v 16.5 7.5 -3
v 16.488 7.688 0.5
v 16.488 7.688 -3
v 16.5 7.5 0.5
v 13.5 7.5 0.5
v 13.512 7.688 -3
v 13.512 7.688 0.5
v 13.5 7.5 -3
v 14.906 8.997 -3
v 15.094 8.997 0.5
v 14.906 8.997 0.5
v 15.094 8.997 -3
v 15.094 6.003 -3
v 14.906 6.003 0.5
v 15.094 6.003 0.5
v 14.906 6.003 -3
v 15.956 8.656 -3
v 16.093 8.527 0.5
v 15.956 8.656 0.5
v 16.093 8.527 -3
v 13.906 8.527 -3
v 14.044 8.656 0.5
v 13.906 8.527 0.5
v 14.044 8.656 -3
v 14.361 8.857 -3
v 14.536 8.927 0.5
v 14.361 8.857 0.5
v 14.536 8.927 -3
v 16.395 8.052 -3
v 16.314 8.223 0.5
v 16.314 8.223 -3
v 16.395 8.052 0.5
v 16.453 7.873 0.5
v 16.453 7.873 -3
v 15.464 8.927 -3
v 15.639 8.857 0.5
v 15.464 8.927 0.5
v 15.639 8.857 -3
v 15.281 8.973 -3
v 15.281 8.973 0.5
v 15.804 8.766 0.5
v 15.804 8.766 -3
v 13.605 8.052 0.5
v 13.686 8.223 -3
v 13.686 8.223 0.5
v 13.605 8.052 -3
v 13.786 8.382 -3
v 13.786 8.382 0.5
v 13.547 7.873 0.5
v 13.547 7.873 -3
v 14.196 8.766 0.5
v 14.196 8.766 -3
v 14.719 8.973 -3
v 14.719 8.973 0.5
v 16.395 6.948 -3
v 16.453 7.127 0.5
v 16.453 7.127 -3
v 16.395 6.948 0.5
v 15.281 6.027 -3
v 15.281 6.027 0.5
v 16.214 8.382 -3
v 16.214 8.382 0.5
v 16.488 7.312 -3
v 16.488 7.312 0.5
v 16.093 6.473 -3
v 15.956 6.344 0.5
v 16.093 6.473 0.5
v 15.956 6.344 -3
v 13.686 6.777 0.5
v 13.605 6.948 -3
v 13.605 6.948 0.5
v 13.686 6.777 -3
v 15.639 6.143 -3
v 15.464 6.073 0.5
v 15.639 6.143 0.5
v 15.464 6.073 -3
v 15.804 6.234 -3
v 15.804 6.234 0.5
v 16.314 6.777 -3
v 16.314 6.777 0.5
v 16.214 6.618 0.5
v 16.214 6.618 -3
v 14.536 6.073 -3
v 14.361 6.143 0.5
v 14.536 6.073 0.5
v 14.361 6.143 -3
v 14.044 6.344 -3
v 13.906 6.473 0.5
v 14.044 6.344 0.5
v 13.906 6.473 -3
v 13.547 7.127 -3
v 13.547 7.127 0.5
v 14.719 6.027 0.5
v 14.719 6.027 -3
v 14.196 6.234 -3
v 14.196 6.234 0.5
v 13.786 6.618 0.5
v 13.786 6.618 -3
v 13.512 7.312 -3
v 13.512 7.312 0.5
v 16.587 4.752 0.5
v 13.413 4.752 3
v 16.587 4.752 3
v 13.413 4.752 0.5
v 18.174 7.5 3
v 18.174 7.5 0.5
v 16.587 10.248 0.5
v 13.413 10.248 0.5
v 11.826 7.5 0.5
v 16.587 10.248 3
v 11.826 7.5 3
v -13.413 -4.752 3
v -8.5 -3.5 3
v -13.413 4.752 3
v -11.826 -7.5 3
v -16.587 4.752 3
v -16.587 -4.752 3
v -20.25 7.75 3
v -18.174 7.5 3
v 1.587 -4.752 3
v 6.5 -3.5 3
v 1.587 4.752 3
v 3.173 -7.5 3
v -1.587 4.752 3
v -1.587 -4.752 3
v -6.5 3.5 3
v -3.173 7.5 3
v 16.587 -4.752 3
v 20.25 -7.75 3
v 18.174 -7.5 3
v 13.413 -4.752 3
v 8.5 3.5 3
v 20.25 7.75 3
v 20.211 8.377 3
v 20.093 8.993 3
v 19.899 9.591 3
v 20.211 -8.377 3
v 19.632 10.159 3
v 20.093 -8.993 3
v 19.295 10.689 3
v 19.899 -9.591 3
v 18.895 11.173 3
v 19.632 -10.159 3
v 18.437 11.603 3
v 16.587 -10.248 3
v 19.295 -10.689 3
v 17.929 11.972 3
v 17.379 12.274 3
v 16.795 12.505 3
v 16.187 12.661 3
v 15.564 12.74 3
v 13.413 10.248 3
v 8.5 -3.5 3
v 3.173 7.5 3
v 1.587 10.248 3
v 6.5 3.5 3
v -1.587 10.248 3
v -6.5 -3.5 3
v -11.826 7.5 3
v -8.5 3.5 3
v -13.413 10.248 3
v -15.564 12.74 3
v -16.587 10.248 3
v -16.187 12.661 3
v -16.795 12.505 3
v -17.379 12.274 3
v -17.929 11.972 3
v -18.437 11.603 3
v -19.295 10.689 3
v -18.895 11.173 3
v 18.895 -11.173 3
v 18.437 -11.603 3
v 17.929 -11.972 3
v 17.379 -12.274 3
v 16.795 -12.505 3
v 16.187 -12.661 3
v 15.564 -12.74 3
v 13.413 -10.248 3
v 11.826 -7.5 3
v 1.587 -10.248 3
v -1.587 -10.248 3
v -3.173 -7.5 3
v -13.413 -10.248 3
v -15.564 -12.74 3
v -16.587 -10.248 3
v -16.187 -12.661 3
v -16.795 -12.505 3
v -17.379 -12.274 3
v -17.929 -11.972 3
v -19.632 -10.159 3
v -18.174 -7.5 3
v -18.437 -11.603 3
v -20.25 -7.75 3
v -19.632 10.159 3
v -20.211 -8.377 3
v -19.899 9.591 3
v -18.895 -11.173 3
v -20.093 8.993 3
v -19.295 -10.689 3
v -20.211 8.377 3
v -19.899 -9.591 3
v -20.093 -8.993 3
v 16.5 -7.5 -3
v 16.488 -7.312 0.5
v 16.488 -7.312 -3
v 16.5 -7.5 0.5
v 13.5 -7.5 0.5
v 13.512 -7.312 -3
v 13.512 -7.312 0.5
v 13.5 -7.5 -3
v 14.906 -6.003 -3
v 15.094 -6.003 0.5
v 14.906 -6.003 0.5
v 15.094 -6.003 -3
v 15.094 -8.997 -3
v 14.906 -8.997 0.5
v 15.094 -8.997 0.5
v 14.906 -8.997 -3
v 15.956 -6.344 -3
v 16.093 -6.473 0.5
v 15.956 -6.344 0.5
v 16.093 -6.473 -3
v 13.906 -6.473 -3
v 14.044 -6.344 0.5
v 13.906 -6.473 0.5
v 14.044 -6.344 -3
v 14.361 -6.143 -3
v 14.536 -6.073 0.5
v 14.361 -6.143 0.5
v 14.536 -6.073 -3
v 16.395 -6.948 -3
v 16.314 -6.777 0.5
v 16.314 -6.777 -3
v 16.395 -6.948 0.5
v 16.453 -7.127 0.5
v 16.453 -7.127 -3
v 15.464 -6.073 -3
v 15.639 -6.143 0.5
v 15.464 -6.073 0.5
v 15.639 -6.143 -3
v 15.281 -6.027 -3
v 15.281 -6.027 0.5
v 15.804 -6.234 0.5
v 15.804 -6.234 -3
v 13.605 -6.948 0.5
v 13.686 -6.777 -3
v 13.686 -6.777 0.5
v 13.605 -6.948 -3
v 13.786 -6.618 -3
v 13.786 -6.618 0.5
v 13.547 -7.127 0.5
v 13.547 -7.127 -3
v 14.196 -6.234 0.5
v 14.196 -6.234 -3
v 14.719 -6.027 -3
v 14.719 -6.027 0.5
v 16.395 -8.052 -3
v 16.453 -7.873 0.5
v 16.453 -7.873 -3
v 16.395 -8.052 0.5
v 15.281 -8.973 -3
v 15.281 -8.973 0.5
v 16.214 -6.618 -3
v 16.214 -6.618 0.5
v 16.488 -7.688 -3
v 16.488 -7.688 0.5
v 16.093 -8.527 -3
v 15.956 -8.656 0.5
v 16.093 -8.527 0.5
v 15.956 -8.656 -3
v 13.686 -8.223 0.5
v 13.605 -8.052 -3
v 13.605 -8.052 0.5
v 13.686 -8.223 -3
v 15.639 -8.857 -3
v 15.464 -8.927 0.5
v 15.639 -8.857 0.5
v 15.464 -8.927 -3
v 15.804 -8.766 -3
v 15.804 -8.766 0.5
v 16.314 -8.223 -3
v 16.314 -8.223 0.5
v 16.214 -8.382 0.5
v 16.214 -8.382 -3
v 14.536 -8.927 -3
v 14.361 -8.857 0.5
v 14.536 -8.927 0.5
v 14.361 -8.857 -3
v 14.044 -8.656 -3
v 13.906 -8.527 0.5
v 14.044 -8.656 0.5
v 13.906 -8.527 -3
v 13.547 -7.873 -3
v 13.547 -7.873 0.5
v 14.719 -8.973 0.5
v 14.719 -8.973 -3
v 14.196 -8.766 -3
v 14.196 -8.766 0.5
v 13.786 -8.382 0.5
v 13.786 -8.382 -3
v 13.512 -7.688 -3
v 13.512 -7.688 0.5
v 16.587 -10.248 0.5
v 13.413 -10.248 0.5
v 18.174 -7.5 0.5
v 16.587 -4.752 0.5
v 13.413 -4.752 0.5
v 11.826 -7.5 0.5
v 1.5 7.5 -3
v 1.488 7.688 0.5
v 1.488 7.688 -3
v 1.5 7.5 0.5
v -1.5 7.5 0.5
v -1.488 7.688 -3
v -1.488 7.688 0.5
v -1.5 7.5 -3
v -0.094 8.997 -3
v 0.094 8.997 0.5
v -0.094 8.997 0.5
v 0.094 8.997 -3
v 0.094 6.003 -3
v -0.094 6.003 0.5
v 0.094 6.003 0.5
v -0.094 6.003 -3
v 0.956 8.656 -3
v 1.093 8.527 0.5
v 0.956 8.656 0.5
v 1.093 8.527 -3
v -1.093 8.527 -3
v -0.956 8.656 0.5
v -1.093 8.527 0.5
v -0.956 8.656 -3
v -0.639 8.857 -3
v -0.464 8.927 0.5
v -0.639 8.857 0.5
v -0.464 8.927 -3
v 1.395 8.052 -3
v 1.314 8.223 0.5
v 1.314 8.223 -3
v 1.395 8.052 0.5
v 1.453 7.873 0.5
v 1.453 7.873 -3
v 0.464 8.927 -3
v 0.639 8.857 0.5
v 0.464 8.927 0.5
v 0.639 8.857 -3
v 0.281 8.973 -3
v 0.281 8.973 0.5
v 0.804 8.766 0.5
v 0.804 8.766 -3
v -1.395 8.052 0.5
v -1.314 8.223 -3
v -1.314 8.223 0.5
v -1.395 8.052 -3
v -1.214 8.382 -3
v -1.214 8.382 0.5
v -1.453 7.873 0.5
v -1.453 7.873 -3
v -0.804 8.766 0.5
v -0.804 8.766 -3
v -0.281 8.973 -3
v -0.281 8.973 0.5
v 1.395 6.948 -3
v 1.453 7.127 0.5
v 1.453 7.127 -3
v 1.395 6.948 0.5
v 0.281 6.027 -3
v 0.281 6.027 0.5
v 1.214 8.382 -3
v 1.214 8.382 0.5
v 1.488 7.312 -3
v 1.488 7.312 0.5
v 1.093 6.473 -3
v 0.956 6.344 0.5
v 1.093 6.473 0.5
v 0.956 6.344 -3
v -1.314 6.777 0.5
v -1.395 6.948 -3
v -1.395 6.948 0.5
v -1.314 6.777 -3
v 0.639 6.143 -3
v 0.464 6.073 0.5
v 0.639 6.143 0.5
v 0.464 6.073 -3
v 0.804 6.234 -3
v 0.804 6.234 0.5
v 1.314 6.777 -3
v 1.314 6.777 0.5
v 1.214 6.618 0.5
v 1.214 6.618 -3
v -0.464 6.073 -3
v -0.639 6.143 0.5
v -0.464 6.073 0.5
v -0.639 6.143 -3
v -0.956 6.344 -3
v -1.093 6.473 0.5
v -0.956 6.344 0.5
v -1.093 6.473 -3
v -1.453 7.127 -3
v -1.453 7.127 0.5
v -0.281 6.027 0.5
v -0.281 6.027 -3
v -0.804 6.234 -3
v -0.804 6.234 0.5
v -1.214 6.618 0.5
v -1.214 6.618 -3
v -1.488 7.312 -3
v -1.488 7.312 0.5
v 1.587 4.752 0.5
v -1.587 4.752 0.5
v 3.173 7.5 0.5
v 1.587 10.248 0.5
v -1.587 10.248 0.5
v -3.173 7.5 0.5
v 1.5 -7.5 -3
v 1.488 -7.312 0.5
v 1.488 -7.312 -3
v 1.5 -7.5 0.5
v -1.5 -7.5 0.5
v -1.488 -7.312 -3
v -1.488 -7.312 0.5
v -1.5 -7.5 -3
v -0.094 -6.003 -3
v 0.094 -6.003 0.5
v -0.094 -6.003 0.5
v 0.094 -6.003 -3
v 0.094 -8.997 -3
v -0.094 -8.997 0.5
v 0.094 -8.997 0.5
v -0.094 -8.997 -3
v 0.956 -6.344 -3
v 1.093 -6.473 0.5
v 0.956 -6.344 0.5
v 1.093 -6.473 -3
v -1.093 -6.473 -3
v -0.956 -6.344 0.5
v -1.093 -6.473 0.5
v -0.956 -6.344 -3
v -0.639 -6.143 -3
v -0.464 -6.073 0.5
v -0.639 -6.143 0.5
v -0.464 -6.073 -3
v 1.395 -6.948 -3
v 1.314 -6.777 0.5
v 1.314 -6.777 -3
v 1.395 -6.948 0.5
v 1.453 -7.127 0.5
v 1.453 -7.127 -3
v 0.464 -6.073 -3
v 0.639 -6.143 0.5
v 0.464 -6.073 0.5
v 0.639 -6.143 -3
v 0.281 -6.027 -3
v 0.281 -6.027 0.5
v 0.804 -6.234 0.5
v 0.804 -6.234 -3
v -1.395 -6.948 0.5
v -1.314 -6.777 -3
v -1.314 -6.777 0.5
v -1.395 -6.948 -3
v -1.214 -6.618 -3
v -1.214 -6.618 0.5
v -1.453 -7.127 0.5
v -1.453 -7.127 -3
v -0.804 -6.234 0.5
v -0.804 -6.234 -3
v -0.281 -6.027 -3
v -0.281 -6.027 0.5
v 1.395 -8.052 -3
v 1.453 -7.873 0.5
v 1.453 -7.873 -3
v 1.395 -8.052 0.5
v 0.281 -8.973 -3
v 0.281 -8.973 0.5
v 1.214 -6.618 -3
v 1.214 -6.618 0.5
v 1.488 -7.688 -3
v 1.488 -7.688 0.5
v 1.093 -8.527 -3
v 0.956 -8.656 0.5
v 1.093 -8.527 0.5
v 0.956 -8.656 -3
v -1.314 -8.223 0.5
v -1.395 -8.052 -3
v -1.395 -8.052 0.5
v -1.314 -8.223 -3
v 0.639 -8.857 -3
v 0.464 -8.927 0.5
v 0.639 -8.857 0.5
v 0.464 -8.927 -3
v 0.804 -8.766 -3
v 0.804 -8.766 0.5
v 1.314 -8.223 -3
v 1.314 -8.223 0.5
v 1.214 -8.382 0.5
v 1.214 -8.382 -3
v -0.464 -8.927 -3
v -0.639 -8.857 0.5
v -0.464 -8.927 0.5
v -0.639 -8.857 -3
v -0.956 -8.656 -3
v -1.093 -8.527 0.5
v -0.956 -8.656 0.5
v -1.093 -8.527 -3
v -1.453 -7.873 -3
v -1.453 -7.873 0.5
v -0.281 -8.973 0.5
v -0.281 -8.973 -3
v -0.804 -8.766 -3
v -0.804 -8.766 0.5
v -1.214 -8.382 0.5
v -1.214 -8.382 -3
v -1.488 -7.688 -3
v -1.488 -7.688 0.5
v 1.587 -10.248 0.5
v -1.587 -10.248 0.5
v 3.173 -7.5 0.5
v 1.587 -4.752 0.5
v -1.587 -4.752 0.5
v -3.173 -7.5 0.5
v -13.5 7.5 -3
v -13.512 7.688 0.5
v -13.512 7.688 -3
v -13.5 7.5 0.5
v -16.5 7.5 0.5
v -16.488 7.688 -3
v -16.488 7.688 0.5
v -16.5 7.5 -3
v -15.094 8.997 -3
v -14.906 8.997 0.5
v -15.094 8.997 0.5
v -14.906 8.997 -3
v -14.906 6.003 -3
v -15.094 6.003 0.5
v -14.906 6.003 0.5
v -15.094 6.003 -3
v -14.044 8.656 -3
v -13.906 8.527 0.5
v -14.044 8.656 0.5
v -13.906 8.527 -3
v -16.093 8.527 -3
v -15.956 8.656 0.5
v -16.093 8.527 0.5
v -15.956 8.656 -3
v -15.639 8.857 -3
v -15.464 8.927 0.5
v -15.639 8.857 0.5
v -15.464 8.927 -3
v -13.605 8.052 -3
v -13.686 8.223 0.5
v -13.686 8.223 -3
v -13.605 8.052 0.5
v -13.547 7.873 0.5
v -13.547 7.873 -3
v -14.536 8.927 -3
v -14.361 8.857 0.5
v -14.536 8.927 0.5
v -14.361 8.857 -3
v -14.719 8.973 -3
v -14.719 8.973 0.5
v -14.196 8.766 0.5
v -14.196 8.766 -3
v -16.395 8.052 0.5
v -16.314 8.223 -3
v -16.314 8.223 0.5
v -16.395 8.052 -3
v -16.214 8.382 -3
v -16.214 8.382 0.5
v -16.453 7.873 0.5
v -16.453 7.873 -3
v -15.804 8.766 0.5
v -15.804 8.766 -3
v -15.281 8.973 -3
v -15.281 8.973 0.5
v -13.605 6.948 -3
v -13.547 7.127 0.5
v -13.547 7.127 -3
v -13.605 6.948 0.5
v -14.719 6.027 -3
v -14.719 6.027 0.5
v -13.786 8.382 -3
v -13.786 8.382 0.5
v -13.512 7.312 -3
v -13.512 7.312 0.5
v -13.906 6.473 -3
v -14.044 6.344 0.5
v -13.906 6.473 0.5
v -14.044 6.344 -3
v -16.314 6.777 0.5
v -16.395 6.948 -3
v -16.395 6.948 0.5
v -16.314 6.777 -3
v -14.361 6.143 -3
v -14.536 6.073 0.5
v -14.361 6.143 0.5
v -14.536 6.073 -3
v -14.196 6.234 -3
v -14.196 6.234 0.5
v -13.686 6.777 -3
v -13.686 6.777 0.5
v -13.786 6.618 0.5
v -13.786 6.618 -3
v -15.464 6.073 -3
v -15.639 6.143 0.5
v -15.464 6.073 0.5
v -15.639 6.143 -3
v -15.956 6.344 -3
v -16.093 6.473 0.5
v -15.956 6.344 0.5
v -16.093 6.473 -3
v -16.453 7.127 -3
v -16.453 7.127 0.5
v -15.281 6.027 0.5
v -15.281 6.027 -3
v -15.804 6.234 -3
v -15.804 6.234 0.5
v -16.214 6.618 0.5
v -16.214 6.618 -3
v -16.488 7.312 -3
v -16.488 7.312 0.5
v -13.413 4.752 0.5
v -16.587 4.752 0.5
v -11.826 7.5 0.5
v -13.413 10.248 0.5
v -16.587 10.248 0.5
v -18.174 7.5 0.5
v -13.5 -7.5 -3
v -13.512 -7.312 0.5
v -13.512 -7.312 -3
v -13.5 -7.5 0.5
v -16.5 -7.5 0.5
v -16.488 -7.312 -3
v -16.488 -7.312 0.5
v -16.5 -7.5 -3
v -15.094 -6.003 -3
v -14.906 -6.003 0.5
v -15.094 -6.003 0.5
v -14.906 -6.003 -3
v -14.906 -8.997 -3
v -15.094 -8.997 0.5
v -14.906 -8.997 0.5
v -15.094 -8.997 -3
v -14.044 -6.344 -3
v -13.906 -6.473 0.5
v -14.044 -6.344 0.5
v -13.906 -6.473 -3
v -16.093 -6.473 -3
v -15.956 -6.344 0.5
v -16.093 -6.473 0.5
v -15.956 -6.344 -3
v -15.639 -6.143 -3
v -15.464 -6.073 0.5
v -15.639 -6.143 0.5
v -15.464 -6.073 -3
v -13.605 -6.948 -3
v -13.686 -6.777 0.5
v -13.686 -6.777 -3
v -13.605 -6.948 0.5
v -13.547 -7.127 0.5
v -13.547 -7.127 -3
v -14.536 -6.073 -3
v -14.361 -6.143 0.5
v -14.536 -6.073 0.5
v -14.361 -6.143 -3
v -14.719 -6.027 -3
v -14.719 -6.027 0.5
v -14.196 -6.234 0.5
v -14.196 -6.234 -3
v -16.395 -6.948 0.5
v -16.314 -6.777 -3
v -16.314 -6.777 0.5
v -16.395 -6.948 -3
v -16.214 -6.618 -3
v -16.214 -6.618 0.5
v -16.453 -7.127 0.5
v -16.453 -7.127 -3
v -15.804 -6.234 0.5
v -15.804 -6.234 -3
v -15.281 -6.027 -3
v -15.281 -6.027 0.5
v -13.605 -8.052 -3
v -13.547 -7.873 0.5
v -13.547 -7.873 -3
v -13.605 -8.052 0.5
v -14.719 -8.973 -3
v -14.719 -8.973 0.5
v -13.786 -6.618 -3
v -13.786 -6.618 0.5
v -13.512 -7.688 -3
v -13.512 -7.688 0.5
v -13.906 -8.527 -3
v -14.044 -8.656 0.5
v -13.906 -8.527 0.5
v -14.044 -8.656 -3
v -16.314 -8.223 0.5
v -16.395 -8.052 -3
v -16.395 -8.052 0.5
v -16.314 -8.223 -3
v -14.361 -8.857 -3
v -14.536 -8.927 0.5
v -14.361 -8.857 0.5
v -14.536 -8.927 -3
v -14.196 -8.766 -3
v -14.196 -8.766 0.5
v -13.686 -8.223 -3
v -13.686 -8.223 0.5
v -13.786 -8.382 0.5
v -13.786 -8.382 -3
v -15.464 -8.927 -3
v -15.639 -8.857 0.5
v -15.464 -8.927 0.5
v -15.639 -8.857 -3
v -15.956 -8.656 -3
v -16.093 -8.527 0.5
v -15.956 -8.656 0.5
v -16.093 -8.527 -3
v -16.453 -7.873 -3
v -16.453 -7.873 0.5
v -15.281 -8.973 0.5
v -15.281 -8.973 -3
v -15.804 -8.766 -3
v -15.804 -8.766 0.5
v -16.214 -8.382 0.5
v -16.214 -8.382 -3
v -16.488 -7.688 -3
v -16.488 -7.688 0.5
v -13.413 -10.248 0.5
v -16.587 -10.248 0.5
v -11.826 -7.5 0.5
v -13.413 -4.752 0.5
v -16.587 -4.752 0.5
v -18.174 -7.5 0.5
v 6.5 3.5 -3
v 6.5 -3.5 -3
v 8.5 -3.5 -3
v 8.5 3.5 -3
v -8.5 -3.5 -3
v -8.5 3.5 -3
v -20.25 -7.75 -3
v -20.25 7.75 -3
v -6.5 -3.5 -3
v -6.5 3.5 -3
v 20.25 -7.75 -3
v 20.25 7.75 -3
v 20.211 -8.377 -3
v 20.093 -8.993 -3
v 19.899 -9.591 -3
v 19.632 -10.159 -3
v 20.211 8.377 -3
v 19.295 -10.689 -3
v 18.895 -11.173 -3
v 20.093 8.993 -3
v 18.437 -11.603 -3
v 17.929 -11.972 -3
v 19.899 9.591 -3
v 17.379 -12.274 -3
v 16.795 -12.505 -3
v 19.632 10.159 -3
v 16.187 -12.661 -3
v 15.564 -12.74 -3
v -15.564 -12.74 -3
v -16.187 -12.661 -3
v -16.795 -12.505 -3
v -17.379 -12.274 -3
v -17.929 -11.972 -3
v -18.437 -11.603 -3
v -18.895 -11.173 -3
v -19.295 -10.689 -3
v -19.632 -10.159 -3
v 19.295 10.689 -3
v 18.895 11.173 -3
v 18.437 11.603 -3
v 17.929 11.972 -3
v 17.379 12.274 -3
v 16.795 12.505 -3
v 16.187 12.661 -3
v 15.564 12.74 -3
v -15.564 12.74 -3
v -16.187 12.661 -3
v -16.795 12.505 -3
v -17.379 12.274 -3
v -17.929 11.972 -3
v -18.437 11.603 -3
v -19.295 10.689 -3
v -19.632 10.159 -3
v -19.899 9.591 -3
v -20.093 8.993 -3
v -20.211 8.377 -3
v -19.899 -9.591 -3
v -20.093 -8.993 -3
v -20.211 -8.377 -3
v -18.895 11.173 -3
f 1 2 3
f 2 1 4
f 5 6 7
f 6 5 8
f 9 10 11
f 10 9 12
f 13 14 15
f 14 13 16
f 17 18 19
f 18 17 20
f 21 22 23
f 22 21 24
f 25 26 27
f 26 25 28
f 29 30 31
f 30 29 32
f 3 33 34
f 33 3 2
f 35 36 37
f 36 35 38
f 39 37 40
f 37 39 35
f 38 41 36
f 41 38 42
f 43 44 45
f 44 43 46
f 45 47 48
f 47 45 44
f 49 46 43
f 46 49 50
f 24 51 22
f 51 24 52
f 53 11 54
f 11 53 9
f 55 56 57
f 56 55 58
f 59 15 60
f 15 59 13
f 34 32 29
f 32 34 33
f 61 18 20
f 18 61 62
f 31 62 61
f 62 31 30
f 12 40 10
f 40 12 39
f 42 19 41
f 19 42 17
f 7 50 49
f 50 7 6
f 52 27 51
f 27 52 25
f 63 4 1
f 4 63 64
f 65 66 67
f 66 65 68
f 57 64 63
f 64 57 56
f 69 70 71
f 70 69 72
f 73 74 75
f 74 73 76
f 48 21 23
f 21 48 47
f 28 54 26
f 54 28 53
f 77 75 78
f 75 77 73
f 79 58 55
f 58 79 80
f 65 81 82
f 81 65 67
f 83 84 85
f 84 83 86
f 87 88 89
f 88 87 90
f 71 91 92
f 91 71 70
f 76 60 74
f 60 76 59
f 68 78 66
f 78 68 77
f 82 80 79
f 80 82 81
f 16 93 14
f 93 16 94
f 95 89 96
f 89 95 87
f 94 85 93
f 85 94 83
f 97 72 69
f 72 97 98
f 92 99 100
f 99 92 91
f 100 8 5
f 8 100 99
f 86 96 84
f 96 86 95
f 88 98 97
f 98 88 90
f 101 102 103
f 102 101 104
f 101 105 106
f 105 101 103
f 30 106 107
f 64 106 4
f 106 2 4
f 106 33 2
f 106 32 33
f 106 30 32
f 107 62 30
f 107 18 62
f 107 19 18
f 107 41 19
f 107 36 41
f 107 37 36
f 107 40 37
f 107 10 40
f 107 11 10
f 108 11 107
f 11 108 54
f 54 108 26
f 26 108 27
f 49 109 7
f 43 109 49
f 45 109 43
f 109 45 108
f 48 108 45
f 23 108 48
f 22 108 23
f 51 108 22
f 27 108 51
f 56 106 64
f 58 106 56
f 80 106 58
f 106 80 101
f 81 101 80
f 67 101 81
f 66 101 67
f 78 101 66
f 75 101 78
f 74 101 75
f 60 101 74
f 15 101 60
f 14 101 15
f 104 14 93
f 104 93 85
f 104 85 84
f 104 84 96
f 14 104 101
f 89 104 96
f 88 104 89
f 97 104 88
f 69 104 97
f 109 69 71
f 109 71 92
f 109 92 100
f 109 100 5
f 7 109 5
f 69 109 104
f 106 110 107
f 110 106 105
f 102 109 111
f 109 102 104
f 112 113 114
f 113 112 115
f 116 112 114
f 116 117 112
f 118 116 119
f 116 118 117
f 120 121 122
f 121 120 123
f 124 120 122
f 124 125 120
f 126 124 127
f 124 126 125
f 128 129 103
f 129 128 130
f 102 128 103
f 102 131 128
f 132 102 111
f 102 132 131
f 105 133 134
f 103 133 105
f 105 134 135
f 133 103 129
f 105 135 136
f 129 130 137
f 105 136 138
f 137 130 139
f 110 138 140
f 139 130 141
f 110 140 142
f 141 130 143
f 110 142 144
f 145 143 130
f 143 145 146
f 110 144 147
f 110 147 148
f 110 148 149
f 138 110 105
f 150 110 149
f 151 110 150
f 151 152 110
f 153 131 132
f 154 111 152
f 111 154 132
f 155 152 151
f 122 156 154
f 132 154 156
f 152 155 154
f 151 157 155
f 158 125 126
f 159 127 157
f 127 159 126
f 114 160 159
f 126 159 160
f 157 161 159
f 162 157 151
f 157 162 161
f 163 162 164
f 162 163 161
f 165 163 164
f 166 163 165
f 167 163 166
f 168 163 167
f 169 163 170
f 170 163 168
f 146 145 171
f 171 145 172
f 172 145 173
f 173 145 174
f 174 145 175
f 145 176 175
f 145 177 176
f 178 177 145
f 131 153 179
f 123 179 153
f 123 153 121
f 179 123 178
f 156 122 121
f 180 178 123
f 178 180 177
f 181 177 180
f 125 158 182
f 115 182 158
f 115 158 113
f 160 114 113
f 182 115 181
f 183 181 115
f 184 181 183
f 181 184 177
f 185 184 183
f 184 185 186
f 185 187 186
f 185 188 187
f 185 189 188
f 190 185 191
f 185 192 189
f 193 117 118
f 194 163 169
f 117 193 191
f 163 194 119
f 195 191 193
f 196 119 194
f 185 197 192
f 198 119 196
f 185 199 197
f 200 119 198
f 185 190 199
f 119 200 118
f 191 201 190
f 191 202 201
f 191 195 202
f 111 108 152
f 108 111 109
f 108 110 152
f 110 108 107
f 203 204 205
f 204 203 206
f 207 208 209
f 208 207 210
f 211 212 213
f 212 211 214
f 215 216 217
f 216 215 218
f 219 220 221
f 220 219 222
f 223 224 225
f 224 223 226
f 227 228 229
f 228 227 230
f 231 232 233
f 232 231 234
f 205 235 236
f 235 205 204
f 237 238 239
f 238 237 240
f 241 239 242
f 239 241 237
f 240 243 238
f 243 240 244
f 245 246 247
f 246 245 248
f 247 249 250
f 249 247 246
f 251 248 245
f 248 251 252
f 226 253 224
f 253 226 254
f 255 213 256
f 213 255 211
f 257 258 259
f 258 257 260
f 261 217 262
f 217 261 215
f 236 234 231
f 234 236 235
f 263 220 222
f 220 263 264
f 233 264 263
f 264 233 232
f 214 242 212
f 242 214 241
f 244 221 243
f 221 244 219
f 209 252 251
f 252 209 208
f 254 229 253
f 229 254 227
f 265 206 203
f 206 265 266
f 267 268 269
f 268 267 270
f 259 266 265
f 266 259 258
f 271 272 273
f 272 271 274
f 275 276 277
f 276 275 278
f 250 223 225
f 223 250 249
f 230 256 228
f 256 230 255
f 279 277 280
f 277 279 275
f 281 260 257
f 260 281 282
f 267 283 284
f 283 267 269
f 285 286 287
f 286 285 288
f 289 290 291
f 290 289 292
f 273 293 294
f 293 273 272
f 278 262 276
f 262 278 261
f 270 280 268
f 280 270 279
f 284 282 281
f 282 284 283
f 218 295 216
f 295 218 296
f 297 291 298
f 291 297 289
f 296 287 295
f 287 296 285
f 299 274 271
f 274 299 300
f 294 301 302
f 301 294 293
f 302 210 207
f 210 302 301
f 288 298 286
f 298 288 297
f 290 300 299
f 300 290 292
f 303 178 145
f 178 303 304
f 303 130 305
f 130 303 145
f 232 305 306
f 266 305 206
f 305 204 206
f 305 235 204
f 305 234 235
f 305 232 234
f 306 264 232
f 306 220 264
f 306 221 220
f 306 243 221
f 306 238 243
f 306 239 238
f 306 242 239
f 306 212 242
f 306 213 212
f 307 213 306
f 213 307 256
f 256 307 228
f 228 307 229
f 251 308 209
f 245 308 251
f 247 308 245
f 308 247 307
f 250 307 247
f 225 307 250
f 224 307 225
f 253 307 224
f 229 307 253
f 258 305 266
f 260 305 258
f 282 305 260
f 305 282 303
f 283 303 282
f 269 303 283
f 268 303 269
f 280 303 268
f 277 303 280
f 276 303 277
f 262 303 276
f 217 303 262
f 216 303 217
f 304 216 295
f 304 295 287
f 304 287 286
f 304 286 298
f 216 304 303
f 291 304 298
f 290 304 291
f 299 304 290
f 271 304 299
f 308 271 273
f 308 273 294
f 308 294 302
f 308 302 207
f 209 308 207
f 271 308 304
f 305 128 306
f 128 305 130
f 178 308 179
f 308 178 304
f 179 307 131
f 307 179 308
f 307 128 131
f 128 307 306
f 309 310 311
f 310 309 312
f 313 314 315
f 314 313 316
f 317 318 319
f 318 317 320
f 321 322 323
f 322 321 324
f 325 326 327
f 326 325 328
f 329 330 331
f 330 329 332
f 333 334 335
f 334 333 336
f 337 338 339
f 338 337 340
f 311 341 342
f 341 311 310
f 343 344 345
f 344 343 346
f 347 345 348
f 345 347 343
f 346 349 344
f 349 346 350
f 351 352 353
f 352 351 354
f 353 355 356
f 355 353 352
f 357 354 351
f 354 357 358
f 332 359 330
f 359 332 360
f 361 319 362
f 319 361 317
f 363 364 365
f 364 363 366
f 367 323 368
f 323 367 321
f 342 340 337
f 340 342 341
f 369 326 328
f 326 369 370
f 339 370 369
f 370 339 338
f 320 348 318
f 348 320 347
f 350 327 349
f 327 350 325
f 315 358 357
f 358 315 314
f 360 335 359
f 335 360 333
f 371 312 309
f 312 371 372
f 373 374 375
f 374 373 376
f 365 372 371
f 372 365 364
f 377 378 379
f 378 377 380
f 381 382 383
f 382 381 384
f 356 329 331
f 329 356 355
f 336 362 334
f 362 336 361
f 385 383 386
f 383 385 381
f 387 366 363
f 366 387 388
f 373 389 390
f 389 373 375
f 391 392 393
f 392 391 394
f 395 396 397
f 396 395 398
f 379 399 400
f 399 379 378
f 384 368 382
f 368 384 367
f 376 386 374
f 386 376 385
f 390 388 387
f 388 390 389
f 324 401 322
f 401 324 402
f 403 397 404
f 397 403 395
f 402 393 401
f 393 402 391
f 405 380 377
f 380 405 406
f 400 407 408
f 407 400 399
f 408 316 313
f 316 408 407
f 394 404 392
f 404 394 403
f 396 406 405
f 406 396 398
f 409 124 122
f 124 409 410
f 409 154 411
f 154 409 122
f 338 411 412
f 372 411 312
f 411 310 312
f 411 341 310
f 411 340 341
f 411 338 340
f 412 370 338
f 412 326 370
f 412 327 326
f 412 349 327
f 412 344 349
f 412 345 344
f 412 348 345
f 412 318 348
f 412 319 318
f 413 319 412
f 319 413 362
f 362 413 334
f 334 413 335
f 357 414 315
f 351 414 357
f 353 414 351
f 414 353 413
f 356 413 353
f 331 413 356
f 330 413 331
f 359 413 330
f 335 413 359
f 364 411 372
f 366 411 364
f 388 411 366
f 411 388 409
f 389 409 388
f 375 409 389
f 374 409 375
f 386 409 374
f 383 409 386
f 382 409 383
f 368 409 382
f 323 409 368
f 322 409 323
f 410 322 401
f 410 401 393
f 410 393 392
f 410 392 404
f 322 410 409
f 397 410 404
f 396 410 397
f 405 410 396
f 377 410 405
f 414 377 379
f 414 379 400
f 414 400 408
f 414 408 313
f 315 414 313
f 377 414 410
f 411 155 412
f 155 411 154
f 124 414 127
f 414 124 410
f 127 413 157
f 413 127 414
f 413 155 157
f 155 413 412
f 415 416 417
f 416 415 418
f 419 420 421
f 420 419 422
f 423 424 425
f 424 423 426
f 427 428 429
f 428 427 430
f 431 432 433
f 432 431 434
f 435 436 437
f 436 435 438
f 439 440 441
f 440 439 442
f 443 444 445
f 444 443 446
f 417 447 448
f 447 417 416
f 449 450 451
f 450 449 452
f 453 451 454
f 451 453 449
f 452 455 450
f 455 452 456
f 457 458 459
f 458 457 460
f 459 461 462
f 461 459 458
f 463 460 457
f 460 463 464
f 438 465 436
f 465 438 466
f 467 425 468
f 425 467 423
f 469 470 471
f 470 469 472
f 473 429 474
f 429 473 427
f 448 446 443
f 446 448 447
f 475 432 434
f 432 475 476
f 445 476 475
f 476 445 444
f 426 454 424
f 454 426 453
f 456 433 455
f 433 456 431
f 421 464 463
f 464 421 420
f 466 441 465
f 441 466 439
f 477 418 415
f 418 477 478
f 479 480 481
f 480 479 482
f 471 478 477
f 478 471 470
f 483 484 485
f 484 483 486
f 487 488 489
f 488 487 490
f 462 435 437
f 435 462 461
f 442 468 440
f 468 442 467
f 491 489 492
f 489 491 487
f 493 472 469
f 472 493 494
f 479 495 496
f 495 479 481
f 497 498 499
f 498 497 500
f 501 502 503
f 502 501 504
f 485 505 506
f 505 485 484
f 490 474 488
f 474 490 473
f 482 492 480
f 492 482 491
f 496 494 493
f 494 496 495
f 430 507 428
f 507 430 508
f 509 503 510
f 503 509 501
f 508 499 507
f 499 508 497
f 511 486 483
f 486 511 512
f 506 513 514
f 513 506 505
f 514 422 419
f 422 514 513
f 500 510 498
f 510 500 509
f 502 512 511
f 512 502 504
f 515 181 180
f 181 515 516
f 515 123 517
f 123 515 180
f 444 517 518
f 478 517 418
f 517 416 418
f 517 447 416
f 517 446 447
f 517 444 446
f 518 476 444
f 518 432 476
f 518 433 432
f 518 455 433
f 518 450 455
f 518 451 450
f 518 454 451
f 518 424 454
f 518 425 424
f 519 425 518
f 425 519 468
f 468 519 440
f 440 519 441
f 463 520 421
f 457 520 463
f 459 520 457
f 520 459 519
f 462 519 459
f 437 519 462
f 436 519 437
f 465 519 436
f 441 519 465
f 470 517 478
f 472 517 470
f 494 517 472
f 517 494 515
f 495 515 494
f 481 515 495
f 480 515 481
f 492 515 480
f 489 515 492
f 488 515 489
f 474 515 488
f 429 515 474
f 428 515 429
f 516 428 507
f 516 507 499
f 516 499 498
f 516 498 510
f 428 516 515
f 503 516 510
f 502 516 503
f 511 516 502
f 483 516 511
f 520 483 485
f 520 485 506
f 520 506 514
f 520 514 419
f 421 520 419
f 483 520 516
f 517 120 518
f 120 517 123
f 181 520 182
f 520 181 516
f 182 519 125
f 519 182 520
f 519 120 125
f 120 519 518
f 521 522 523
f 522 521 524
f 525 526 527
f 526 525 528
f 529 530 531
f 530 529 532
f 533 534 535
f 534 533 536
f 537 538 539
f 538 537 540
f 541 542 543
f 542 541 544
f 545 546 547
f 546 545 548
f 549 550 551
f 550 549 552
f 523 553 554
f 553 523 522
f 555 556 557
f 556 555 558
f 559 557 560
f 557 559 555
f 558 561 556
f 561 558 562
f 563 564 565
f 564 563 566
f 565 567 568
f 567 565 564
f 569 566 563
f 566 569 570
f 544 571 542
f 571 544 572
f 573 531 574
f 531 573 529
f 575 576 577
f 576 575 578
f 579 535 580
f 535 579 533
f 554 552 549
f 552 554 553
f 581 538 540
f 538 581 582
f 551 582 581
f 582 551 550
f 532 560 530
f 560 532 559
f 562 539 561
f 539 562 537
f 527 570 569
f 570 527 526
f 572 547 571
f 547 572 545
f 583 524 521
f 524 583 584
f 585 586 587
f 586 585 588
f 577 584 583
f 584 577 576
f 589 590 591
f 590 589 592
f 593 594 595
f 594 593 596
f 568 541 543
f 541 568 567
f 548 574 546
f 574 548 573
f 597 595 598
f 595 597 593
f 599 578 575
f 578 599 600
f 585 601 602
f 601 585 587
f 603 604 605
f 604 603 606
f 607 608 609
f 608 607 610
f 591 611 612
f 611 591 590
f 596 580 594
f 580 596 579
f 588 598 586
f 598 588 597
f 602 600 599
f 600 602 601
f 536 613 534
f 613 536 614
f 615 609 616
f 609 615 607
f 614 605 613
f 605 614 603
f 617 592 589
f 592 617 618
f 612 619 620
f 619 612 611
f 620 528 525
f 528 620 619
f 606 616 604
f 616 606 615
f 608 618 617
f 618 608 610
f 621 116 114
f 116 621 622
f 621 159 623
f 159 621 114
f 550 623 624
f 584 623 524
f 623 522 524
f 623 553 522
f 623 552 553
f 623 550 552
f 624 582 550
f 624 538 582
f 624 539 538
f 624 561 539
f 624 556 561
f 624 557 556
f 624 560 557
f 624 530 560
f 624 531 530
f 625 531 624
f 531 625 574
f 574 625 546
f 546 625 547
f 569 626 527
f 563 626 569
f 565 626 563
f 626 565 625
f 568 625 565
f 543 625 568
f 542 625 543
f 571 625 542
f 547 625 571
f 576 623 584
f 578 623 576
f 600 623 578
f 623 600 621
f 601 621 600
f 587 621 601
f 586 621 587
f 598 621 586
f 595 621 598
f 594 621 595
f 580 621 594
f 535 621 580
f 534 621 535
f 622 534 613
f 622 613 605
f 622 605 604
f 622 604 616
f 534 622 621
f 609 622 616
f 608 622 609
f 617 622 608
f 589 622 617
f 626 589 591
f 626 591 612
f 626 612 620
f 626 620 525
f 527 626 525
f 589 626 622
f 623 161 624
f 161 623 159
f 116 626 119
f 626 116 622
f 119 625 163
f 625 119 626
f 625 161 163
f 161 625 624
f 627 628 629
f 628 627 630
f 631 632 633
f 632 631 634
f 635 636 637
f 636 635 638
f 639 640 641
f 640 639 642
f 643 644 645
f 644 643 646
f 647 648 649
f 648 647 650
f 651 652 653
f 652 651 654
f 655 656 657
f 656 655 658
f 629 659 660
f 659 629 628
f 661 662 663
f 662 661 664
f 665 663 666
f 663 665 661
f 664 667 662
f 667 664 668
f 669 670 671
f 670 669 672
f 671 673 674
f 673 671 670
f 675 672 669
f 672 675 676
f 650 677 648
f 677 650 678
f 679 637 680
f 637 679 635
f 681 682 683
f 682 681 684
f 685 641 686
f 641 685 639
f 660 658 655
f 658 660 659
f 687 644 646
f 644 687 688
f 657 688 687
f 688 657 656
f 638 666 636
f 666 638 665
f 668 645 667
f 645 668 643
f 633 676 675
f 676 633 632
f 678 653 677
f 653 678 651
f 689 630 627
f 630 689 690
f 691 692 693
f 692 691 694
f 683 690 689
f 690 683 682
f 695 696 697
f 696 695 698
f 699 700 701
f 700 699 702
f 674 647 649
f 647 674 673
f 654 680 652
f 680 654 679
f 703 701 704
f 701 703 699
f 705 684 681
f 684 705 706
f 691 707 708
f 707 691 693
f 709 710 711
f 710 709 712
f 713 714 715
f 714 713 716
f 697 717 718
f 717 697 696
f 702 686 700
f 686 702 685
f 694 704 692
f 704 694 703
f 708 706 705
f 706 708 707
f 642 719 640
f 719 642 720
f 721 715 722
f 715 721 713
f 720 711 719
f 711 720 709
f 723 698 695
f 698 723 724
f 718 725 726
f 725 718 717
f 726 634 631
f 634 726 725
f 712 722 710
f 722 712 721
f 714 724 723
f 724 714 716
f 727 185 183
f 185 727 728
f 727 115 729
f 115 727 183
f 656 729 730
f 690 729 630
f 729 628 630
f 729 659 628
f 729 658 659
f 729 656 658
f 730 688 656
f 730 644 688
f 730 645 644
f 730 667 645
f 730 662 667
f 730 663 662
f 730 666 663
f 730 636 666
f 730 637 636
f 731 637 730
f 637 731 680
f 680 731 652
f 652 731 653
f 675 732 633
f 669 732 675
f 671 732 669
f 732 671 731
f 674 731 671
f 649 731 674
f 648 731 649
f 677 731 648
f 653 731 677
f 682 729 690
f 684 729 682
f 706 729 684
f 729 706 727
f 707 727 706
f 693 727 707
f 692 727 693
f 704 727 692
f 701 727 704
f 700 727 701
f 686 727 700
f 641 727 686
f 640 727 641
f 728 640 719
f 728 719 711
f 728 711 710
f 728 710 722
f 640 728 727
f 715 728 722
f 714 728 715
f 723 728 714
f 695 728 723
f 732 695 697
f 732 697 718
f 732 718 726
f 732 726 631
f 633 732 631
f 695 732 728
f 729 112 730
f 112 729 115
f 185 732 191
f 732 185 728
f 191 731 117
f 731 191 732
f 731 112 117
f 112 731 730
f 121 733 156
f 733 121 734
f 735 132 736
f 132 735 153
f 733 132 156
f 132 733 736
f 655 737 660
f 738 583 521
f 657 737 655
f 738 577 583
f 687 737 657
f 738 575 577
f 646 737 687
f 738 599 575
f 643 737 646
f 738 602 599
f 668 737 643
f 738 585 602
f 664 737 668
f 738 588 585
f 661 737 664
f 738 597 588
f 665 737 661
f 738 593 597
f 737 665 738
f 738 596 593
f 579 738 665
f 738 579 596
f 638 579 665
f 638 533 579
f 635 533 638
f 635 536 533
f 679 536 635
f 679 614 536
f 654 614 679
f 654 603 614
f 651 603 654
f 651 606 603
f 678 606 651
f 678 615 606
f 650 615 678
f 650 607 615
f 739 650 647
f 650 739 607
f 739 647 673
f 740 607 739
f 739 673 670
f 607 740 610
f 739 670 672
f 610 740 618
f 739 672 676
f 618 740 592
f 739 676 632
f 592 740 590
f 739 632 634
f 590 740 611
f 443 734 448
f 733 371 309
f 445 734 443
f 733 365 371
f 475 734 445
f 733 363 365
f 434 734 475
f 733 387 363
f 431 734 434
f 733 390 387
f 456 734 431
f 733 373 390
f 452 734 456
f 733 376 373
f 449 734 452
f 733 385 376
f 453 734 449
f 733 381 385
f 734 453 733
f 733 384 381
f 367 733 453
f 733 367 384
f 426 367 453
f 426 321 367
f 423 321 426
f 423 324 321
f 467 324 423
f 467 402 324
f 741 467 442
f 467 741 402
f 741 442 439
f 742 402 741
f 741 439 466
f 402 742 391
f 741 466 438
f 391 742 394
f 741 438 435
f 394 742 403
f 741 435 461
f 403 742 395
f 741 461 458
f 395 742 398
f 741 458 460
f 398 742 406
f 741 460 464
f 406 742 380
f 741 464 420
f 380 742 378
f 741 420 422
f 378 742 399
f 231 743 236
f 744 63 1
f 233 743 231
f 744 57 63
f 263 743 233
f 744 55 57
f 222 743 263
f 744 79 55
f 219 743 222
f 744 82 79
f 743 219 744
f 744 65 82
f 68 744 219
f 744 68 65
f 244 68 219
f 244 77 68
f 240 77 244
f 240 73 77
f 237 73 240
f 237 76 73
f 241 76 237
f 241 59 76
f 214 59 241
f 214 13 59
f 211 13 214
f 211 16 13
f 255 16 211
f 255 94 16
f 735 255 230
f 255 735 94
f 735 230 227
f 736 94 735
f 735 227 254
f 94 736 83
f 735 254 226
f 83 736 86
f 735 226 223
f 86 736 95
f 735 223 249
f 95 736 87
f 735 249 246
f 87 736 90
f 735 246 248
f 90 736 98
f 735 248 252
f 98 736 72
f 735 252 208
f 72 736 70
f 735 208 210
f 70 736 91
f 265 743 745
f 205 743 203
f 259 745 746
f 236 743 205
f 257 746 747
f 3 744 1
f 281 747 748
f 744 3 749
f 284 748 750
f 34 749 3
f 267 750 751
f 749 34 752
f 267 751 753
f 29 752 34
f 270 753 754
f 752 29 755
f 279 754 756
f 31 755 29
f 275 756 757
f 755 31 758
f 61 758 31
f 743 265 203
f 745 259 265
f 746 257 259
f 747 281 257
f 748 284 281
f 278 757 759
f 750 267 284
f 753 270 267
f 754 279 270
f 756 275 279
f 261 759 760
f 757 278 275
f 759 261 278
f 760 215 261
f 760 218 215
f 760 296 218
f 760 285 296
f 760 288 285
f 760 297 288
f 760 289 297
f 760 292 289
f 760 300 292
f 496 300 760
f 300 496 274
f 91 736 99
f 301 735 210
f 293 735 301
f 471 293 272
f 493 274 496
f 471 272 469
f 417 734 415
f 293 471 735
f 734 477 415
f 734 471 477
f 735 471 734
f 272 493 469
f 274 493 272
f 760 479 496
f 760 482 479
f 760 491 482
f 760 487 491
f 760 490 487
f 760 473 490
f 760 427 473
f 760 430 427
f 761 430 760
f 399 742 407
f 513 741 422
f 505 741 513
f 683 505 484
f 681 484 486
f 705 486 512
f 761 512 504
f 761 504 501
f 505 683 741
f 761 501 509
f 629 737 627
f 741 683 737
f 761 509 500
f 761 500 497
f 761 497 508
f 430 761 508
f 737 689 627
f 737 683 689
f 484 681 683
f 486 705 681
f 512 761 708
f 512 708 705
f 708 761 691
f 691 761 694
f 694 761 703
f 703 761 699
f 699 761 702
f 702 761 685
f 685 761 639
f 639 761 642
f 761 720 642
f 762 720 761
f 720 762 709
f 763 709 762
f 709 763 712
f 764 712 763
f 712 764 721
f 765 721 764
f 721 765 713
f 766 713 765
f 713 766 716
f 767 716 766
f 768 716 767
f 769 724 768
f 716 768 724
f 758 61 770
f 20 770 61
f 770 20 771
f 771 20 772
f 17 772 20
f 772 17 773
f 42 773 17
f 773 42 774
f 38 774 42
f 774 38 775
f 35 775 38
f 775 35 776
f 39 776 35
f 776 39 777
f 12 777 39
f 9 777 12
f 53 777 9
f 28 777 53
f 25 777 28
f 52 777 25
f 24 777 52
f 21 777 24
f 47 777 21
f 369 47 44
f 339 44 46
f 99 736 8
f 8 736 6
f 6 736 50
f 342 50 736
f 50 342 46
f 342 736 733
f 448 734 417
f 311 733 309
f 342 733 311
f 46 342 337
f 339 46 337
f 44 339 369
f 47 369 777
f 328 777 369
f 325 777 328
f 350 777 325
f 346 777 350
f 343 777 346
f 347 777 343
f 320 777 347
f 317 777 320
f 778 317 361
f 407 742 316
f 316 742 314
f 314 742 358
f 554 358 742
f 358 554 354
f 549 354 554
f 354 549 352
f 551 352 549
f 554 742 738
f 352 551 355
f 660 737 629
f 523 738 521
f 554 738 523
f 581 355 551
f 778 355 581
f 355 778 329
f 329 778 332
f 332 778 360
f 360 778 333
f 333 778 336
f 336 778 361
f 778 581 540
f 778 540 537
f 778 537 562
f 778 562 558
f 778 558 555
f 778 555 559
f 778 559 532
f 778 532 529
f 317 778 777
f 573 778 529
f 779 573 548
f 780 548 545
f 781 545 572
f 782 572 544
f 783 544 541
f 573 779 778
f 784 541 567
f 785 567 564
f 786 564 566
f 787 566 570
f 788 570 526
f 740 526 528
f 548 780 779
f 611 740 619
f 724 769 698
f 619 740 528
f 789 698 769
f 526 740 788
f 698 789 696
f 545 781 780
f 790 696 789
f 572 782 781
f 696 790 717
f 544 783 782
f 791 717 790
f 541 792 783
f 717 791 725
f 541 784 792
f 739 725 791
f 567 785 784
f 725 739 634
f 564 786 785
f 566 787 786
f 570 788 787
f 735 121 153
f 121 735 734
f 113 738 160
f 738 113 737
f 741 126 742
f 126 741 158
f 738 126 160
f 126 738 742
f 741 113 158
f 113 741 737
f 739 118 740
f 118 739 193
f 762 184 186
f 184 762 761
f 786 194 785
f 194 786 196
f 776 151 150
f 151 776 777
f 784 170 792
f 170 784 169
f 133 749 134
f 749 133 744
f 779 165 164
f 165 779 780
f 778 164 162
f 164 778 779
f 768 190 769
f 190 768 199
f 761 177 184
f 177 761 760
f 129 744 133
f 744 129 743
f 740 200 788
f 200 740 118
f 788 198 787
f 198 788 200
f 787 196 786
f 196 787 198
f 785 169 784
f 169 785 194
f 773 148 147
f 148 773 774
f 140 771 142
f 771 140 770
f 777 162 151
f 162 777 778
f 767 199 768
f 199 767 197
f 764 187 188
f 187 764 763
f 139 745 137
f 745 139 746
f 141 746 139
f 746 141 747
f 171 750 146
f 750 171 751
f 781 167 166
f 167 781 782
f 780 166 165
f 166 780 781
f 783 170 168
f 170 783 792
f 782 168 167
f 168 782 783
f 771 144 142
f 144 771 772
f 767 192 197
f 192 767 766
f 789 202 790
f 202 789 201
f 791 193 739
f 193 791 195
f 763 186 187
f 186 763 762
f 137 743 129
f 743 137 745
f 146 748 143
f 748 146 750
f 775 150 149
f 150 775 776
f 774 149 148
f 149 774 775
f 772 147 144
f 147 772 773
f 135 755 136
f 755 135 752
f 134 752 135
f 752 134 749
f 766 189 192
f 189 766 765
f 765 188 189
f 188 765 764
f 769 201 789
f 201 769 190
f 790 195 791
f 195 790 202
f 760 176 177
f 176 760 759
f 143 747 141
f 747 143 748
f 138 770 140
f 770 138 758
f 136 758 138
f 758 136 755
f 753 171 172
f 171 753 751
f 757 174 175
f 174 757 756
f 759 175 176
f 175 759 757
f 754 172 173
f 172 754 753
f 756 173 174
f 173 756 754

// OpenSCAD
$fn = 50;


difference() {
	union() {
		translate(v = [0, 0, -3.0000000000]) {
			hull() {
				translate(v = [-15.2500000000, 7.7500000000, 0]) {
					cylinder(h = 6, r = 5);
				}
				translate(v = [15.2500000000, 7.7500000000, 0]) {
					cylinder(h = 6, r = 5);
				}
				translate(v = [-15.2500000000, -7.7500000000, 0]) {
					cylinder(h = 6, r = 5);
				}
				translate(v = [15.2500000000, -7.7500000000, 0]) {
					cylinder(h = 6, r = 5);
				}
			}
		}
	}
	union() {
		translate(v = [15, 7.5000000000, 3.0000000000]) {
			rotate(a = [0, 0, 0]) {
				difference() {
					union() {
						translate(v = [0, 0, -50.0000000000]) {
							cylinder(h = 100, r = 1.5000000000);
						}
						translate(v = [0, 0, -50.0000000000]) {
							cylinder(h = 100, r = 1.5000000000);
						}
						translate(v = [0, 0, -2.5000000000]) {
							linear_extrude(height = 2.5000000000) {
								polygon(points = [[3.1735000000, 0.0000000000], [1.5867500000, 2.7483316189], [-1.5867500000, 2.7483316189], [-3.1735000000, 0.0000000000], [-1.5867500000, -2.7483316189], [1.5867500000, -2.7483316189]]);
							}
						}
						translate(v = [0, 0, -50.0000000000]) {
							cylinder(h = 100, r = 1.5000000000);
						}
					}
					union();
				}
			}
		}
		translate(v = [15, -7.5000000000, 3.0000000000]) {
			rotate(a = [0, 0, 0]) {
				difference() {
					union() {
						translate(v = [0, 0, -50.0000000000]) {
							cylinder(h = 100, r = 1.5000000000);
						}
						translate(v = [0, 0, -50.0000000000]) {
							cylinder(h = 100, r = 1.5000000000);
						}
						translate(v = [0, 0, -2.5000000000]) {
							linear_extrude(height = 2.5000000000) {
								polygon(points = [[3.1735000000, 0.0000000000], [1.5867500000, 2.7483316189], [-1.5867500000, 2.7483316189], [-3.1735000000, 0.0000000000], [-1.5867500000, -2.7483316189], [1.5867500000, -2.7483316189]]);
							}
						}
						translate(v = [0, 0, -50.0000000000]) {
							cylinder(h = 100, r = 1.5000000000);
						}
					}
					union();
				}
			}
		}
		translate(v = [0, 7.5000000000, 3.0000000000]) {
			rotate(a = [0, 0, 0]) {
				difference() {
					union() {
						translate(v = [0, 0, -50.0000000000]) {
							cylinder(h = 100, r = 1.5000000000);
						}
						translate(v = [0, 0, -50.0000000000]) {
							cylinder(h = 100, r = 1.5000000000);
						}
						translate(v = [0, 0, -2.5000000000]) {
							linear_extrude(height = 2.5000000000) {
								polygon(points = [[3.1735000000, 0.0000000000], [1.5867500000, 2.7483316189], [-1.5867500000, 2.7483316189], [-3.1735000000, 0.0000000000], [-1.5867500000, -2.7483316189], [1.5867500000, -2.7483316189]]);
							}
						}
						translate(v = [0, 0, -50.0000000000]) {
							cylinder(h = 100, r = 1.5000000000);
						}
					}
					union();
				}
			}
		}
		translate(v = [0, -7.5000000000, 3.0000000000]) {
			rotate(a = [0, 0, 0]) {
				difference() {
					union() {
						translate(v = [0, 0, -50.0000000000]) {
							cylinder(h = 100, r = 1.5000000000);
						}
						translate(v = [0, 0, -50.0000000000]) {
							cylinder(h = 100, r = 1.5000000000);
						}
						translate(v = [0, 0, -2.5000000000]) {
							linear_extrude(height = 2.5000000000) {
								polygon(points = [[3.1735000000, 0.0000000000], [1.5867500000, 2.7483316189], [-1.5867500000, 2.7483316189], [-3.1735000000, 0.0000000000], [-1.5867500000, -2.7483316189], [1.5867500000, -2.7483316189]]);
							}
						}
						translate(v = [0, 0, -50.0000000000]) {
							cylinder(h = 100, r = 1.5000000000);
						}
					}
					union();
				}
			}
		}
		translate(v = [-15, 7.5000000000, 3.0000000000]) {
			rotate(a = [0, 0, 0]) {
				difference() {
					union() {
						translate(v = [0, 0, -50.0000000000]) {
							cylinder(h = 100, r = 1.5000000000);
						}
						translate(v = [0, 0, -50.0000000000]) {
							cylinder(h = 100, r = 1.5000000000);
						}
						translate(v = [0, 0, -2.5000000000]) {
							linear_extrude(height = 2.5000000000) {
								polygon(points = [[3.1735000000, 0.0000000000], [1.5867500000, 2.7483316189], [-1.5867500000, 2.7483316189], [-3.1735000000, 0.0000000000], [-1.5867500000, -2.7483316189], [1.5867500000, -2.7483316189]]);
							}
						}
						translate(v = [0, 0, -50.0000000000]) {
							cylinder(h = 100, r = 1.5000000000);
						}
					}
					union();
				}
			}
		}
		translate(v = [-15, -7.5000000000, 3.0000000000]) {
			rotate(a = [0, 0, 0]) {
				difference() {
					union() {
						translate(v = [0, 0, -50.0000000000]) {
							cylinder(h = 100, r = 1.5000000000);
						}
						translate(v = [0, 0, -50.0000000000]) {
							cylinder(h = 100, r = 1.5000000000);
						}
						translate(v = [0, 0, -2.5000000000]) {
							linear_extrude(height = 2.5000000000) {
								polygon(points = [[3.1735000000, 0.0000000000], [1.5867500000, 2.7483316189], [-1.5867500000, 2.7483316189], [-3.1735000000, 0.0000000000], [-1.5867500000, -2.7483316189], [1.5867500000, -2.7483316189]]);
							}
						}
						translate(v = [0, 0, -50.0000000000]) {
							cylinder(h = 100, r = 1.5000000000);
						}
					}
					union();
				}
			}
		}
		#translate(v = [6.5000000000, -3.5000000000, -3.0000000000]) {
			cube(size = [2, 7, 6]);
		}
		#translate(v = [-8.5000000000, -3.5000000000, -3.0000000000]) {
			cube(size = [2, 7, 6]);
		}
	}
}
